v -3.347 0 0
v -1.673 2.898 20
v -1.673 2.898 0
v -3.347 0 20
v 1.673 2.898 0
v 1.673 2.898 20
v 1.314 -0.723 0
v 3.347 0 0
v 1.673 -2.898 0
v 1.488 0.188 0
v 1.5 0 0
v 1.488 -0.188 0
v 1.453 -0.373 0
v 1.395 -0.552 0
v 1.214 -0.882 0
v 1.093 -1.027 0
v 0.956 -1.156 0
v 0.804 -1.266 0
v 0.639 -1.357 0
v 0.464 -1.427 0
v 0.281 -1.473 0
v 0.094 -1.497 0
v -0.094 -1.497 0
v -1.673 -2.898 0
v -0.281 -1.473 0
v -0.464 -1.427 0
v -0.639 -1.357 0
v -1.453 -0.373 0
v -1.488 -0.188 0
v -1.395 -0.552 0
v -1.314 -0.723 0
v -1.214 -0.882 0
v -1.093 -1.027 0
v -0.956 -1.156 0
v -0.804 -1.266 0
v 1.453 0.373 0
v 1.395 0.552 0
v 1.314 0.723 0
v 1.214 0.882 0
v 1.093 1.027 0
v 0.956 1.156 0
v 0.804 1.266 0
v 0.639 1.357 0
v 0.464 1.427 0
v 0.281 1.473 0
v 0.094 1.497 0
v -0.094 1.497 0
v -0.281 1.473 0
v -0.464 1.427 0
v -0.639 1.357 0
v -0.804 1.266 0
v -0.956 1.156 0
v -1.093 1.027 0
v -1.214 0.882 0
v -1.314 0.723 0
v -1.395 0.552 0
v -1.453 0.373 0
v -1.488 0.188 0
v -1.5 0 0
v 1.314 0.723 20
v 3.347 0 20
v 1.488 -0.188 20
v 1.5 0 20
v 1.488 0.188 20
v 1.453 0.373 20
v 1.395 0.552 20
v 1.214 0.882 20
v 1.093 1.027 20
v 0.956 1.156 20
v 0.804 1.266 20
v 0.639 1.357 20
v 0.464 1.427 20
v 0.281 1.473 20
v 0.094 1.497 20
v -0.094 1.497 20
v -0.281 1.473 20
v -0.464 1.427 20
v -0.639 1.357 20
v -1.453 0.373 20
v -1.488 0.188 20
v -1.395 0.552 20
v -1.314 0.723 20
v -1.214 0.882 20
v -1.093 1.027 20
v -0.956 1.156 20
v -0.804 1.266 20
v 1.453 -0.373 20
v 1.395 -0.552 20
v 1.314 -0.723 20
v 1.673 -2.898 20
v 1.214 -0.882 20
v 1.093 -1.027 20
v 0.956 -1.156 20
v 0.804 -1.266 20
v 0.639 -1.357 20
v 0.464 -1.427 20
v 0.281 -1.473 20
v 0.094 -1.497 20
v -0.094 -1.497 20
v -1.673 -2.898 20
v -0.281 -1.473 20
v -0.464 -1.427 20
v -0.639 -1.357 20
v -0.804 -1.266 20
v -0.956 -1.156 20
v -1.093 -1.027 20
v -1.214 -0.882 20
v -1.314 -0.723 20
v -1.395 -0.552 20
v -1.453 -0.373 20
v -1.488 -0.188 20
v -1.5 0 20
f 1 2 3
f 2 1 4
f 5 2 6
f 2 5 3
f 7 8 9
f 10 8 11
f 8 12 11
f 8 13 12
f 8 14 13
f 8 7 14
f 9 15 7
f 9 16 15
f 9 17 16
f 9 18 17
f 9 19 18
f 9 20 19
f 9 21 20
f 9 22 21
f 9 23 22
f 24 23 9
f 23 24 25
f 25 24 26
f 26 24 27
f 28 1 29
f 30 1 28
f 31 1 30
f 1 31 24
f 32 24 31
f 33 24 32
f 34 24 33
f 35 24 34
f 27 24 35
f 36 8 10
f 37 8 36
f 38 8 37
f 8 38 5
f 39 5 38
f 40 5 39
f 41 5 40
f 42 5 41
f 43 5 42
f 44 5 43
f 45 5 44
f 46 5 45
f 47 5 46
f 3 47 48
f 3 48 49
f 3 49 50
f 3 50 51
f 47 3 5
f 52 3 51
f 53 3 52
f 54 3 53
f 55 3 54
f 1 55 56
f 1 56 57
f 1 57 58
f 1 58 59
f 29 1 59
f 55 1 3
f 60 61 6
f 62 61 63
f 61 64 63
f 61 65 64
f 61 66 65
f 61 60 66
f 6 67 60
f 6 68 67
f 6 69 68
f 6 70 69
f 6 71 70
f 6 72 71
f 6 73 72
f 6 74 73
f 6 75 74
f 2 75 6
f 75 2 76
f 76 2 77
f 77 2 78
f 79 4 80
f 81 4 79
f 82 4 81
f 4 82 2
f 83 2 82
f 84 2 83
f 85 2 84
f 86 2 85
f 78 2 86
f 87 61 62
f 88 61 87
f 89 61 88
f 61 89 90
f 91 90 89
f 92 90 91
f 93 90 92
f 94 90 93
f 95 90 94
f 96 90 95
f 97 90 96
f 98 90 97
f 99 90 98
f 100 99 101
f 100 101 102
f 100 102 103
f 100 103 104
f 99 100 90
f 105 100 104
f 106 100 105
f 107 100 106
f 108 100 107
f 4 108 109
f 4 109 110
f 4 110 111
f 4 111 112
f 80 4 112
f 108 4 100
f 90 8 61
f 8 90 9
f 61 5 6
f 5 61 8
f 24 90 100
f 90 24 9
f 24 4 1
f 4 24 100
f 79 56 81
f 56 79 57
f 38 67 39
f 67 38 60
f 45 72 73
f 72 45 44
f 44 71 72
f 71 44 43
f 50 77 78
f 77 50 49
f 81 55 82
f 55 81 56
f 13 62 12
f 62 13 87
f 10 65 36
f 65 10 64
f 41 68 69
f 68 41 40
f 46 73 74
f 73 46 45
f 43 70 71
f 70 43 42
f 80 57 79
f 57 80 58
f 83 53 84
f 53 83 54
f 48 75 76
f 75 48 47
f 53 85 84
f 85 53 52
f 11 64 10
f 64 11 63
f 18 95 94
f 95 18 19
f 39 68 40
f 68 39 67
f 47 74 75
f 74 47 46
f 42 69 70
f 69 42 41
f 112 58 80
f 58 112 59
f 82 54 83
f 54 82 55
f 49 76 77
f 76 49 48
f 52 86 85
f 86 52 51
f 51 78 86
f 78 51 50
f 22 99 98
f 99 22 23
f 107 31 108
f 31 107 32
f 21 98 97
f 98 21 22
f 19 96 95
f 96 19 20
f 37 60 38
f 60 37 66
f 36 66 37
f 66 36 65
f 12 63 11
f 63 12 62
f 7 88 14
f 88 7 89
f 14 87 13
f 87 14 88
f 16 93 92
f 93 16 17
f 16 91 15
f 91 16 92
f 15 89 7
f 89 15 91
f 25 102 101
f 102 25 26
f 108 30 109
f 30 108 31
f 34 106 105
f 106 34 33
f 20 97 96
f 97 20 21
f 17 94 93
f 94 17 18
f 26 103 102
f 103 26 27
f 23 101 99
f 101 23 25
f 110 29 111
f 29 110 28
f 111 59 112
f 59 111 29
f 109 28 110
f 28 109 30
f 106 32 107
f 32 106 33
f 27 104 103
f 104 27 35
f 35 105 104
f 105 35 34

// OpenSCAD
$fn = 50;


difference() {
	union() {
		linear_extrude(height = 20) {
			polygon(points = [[3.3466000000, 0.0000000000], [1.6733000000, 2.8982406163], [-1.6733000000, 2.8982406163], [-3.3466000000, 0.0000000000], [-1.6733000000, -2.8982406163], [1.6733000000, -2.8982406163]]);
		}
	}
	union() {
		cylinder(h = 20, r = 1.5000000000);
	}
}
